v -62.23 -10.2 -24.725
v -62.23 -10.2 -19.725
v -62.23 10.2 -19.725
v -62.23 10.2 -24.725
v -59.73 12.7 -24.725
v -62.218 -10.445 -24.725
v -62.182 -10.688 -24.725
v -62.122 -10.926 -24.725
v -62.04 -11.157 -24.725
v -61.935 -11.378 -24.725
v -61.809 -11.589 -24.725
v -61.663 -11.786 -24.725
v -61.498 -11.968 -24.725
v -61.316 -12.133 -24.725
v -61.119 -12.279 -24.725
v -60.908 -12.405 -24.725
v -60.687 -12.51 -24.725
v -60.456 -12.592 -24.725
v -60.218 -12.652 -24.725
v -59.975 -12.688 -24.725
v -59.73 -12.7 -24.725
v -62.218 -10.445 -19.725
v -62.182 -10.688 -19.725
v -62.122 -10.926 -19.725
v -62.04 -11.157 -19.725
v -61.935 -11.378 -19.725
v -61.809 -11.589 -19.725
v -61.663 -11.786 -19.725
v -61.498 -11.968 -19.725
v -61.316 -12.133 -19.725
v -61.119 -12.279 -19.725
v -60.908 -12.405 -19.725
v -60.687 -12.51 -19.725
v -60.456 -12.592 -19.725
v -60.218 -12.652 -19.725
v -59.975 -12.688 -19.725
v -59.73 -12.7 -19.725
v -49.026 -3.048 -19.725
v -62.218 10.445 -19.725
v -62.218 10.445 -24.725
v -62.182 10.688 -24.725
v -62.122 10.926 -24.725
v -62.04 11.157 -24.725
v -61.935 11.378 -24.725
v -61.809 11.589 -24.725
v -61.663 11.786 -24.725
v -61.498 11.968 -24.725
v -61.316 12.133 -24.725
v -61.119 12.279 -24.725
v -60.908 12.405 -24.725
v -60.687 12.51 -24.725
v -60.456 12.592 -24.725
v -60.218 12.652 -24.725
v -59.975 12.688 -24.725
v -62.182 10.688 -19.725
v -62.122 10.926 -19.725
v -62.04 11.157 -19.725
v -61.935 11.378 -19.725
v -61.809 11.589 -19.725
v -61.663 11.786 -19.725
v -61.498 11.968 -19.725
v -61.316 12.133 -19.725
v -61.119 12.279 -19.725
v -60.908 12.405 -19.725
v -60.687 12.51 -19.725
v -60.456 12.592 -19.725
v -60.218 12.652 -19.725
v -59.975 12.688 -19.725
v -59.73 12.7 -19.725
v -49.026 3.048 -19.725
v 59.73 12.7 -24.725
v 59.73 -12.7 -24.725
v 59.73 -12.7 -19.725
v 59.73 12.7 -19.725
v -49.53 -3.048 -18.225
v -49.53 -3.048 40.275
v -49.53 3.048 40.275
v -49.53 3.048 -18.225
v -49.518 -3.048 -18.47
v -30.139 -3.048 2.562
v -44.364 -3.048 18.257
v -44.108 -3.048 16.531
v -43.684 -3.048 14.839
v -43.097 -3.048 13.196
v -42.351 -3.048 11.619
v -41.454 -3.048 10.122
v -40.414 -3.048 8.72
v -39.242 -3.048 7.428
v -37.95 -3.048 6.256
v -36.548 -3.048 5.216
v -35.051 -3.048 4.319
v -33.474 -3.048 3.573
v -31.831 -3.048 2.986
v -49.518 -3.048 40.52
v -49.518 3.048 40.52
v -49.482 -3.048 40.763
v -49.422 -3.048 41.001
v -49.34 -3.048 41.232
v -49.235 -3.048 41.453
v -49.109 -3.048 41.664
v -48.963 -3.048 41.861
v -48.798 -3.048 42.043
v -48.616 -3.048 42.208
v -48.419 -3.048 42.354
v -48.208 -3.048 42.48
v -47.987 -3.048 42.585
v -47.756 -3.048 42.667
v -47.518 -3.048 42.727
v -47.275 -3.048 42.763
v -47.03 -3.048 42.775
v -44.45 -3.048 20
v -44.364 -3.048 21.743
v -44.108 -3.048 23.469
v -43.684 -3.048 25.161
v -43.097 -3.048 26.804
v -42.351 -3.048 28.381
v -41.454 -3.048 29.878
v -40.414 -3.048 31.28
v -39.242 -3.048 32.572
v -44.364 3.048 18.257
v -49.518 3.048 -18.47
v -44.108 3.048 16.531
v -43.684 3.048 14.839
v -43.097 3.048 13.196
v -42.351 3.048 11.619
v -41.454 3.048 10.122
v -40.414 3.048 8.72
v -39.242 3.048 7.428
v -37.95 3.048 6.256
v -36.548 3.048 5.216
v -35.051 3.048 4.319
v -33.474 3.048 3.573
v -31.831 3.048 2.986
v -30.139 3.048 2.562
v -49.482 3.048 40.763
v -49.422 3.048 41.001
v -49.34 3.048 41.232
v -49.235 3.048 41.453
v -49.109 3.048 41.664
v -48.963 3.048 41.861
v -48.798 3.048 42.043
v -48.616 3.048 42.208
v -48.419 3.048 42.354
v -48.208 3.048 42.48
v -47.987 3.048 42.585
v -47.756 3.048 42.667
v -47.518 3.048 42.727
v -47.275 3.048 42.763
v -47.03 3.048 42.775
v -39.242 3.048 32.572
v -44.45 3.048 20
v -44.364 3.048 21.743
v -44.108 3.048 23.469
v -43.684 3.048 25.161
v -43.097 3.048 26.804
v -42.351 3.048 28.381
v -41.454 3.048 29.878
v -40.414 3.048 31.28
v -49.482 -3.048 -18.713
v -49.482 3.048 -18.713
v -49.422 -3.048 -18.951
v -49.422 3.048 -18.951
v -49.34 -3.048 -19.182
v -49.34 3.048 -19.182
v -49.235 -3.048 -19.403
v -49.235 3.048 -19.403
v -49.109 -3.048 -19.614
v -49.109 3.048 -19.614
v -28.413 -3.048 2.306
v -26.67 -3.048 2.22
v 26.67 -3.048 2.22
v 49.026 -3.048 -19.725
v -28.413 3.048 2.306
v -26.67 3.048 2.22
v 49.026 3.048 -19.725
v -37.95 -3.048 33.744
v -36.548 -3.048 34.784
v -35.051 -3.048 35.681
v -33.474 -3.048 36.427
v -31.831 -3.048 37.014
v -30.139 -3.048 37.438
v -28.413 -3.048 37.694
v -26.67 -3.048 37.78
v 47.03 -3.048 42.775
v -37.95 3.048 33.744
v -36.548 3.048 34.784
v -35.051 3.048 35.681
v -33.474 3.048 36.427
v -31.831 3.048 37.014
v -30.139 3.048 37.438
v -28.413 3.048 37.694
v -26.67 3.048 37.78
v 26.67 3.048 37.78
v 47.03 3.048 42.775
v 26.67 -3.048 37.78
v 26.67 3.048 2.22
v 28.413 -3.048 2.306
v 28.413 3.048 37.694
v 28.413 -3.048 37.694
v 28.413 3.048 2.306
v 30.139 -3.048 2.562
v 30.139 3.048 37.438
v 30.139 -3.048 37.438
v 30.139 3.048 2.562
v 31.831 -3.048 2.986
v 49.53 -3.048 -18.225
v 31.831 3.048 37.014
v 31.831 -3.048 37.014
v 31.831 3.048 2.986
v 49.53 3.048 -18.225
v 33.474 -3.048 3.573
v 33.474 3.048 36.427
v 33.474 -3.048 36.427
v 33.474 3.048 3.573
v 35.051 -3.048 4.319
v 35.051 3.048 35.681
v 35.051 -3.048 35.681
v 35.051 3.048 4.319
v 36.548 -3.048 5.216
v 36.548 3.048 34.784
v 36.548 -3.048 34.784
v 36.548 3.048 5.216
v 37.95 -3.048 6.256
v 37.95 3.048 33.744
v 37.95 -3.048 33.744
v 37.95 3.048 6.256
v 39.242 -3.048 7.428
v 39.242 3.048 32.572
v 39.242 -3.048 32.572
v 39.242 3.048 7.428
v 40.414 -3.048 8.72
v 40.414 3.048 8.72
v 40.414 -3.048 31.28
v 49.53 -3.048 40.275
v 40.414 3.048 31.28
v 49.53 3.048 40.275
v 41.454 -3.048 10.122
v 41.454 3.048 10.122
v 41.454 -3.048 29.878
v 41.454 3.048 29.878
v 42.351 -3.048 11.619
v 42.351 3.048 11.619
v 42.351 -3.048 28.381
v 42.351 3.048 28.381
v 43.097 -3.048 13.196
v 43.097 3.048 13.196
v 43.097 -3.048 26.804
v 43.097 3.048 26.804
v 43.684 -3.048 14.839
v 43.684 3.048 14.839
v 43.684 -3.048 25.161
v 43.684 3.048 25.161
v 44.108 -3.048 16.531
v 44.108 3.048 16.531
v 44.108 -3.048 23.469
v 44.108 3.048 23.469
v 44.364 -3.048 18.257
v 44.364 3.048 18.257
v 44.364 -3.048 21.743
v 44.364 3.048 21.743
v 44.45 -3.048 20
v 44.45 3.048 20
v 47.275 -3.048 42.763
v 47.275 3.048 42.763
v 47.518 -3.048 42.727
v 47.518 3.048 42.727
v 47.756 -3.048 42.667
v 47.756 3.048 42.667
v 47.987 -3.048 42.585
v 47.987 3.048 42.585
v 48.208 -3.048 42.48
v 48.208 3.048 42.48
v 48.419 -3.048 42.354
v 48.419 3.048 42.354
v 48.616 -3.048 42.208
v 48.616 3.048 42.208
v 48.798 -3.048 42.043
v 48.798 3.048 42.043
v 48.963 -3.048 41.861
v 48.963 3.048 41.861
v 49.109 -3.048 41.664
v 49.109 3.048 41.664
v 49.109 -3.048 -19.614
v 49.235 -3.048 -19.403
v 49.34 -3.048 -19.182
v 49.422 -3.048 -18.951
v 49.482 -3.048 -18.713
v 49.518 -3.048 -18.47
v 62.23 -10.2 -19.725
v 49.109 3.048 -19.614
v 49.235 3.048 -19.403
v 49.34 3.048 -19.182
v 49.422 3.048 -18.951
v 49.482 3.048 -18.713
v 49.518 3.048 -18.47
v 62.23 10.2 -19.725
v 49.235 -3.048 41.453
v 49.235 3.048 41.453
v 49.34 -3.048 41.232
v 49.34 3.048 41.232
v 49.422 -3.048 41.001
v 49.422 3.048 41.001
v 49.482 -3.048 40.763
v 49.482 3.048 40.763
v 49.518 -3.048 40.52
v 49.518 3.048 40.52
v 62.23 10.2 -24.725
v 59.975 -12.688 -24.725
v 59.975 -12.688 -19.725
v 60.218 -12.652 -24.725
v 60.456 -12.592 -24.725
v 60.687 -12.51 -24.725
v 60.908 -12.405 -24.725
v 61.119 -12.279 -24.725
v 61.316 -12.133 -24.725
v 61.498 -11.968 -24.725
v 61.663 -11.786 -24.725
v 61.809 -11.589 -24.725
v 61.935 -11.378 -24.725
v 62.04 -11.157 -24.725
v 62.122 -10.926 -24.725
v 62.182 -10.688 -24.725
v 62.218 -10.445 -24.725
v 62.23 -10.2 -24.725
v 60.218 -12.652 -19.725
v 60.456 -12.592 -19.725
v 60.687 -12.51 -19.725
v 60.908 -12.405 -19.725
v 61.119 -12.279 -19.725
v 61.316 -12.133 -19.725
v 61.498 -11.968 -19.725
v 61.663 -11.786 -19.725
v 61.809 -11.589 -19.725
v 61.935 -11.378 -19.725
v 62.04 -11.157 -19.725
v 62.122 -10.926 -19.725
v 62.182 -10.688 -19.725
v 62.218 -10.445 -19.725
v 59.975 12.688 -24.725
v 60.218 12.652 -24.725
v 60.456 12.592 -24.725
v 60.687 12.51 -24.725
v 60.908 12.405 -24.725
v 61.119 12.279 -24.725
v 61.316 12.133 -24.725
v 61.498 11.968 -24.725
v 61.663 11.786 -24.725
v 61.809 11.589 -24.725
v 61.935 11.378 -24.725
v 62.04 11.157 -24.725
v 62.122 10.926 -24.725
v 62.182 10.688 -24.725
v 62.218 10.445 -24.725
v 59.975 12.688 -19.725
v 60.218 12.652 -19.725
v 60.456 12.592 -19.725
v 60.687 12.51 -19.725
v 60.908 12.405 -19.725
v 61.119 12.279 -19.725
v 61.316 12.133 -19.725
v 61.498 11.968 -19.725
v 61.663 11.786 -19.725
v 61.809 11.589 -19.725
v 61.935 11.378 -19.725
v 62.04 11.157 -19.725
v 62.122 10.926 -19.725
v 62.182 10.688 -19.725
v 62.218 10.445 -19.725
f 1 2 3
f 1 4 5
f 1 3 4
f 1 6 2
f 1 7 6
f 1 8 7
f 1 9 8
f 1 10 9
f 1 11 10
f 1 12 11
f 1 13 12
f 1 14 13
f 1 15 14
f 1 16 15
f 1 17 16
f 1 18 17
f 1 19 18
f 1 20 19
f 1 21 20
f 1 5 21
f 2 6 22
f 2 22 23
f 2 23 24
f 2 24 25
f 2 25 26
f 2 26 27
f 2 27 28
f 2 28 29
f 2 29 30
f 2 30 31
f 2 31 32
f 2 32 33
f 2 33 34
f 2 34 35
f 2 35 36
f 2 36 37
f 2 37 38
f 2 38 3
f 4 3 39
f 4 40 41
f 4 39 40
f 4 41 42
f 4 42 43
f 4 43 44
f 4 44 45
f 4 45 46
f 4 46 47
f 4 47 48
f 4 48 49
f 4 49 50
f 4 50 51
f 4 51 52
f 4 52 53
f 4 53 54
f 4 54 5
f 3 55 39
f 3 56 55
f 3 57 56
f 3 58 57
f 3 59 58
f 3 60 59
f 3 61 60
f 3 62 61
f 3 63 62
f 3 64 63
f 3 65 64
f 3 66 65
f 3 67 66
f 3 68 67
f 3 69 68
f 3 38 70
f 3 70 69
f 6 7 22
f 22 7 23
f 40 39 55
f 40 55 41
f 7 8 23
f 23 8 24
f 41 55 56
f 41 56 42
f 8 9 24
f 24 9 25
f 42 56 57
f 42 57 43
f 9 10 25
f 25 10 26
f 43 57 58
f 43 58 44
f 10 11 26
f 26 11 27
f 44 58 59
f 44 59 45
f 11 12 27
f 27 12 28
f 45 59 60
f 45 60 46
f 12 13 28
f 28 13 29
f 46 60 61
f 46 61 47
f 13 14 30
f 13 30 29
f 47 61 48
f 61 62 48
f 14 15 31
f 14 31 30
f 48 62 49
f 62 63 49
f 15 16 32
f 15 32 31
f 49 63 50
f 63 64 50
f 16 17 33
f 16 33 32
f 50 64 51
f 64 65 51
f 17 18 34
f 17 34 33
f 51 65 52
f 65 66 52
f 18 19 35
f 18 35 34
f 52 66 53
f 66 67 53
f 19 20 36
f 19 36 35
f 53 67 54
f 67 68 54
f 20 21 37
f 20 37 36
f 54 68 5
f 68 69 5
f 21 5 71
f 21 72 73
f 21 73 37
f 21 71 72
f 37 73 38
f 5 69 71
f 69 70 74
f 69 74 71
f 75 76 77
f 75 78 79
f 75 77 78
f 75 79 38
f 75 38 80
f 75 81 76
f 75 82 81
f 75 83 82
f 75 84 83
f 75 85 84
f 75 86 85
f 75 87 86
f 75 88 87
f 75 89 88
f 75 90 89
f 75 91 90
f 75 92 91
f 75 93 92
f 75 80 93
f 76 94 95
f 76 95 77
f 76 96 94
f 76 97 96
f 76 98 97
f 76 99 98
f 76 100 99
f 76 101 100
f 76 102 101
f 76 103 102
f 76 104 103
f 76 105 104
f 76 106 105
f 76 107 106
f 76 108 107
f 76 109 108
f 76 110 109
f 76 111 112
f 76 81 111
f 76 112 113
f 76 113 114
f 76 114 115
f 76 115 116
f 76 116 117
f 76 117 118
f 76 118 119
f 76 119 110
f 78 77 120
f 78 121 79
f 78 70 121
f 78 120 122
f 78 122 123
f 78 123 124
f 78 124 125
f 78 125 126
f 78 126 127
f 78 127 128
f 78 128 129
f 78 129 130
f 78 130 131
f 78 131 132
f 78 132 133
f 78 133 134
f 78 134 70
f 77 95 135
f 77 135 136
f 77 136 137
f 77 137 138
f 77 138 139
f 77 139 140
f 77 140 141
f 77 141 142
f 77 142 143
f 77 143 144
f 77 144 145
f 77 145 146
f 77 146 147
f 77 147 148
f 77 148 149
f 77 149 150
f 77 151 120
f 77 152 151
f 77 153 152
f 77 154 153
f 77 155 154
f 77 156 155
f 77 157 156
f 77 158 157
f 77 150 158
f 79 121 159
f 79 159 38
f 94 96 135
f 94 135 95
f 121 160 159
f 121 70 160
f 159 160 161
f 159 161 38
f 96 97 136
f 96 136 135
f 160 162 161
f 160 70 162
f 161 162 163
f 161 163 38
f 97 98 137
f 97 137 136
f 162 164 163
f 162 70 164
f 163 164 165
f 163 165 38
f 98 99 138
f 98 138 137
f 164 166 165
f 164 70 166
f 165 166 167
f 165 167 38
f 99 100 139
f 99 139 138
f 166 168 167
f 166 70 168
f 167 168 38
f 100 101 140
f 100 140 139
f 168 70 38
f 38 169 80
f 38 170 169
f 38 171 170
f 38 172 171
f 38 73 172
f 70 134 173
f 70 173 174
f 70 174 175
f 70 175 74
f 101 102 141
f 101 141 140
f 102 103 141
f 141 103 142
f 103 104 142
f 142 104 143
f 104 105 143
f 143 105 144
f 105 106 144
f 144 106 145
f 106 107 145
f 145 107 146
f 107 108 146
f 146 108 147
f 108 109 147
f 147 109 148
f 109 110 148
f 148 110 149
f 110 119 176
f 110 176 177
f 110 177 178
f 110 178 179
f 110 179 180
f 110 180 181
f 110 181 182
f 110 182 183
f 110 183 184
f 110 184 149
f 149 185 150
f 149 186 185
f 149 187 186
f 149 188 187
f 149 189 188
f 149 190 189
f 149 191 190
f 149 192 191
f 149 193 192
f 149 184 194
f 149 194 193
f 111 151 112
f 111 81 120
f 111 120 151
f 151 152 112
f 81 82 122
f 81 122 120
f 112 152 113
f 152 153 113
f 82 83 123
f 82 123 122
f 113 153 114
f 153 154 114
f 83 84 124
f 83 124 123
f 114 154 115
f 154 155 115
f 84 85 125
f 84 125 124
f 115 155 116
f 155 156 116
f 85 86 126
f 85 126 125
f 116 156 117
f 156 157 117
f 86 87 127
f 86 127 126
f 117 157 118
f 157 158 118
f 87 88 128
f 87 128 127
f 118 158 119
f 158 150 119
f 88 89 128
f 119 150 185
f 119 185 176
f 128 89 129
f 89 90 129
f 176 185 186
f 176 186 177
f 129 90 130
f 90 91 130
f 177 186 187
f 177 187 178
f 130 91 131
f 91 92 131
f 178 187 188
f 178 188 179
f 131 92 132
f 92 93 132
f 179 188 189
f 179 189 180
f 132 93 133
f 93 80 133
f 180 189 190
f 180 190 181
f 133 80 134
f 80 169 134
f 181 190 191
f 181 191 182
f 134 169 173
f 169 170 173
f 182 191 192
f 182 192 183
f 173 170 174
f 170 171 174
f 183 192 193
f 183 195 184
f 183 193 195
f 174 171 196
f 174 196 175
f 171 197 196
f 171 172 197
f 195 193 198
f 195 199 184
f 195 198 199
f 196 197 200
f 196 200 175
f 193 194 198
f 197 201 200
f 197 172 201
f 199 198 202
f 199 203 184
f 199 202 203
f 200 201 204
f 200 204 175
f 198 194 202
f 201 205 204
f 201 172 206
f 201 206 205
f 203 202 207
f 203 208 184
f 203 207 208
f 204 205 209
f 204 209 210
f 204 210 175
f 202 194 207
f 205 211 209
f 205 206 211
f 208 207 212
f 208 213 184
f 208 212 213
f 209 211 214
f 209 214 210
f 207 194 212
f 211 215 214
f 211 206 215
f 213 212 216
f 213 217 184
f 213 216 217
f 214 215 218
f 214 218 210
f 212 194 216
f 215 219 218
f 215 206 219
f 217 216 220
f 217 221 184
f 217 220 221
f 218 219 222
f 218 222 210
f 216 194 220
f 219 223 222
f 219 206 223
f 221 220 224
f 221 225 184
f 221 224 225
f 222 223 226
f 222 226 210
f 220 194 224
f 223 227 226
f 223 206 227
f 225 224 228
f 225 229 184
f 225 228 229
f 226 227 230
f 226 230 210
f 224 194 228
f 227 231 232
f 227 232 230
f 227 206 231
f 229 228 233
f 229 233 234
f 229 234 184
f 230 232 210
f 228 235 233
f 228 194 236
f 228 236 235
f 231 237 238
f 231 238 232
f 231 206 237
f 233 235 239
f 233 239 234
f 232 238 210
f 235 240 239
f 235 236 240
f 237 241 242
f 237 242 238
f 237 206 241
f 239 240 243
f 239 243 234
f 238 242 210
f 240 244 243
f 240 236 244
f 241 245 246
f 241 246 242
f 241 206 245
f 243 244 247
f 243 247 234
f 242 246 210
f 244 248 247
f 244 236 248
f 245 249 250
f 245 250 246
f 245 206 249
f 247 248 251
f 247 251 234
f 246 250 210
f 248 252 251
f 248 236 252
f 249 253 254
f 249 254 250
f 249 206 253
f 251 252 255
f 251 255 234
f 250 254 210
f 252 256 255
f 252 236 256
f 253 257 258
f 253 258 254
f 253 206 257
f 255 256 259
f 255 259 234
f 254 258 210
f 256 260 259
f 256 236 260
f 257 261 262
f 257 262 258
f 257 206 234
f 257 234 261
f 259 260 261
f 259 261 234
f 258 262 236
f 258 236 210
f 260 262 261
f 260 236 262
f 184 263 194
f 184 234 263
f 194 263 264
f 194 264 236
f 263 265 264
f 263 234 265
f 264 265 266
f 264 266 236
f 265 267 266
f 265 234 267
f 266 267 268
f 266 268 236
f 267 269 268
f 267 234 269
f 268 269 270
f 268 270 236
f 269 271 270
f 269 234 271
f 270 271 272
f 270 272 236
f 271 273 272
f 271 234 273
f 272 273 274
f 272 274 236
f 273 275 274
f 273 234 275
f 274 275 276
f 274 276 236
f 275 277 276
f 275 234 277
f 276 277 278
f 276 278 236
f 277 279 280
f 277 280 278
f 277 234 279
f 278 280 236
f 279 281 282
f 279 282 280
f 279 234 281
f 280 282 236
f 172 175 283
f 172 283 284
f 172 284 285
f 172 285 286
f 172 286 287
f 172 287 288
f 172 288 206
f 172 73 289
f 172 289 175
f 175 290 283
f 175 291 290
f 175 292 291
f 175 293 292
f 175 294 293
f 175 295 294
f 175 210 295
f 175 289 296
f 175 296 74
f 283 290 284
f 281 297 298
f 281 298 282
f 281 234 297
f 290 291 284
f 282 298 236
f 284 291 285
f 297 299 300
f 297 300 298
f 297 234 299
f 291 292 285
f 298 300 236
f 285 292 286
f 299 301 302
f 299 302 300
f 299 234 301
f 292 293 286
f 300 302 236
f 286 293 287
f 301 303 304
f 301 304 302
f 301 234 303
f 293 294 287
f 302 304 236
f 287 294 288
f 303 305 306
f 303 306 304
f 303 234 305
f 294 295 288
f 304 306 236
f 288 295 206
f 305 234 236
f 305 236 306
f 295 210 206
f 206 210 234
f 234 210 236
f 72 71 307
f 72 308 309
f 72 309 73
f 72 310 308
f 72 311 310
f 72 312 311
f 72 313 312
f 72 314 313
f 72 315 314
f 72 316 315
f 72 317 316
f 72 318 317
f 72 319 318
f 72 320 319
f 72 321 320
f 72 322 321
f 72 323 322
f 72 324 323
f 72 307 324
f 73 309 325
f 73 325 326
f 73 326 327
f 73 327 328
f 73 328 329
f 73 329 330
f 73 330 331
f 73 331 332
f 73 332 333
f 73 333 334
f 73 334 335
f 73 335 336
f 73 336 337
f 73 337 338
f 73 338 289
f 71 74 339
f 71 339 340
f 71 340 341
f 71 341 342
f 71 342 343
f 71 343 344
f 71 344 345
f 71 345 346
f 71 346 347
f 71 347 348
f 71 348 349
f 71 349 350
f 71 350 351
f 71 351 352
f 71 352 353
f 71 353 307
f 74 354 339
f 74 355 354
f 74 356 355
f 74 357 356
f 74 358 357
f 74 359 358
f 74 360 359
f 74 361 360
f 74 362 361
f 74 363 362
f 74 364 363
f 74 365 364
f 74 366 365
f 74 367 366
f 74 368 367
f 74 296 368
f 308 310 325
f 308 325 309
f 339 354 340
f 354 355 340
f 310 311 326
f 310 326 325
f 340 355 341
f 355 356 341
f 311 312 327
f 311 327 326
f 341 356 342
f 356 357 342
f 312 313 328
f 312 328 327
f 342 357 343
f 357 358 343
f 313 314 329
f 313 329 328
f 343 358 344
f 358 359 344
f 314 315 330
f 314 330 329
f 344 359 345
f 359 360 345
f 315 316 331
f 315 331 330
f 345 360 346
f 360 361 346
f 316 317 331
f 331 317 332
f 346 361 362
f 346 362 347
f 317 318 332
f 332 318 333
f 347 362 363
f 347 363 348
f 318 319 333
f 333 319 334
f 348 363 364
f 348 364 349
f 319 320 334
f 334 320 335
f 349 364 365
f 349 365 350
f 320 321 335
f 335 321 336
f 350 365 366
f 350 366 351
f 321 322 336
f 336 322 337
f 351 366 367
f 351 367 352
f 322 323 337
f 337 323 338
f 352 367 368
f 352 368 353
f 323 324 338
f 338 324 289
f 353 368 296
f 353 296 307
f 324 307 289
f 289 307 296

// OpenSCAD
//
// 1-piece handle, insert from bottom
//

e = 0.1;
mm = 25.4;
$fn = 64;

// slot
slot_len = 4*mm-0.1*mm;
slot_wid = 0.125*mm - 0.005*mm;

foam_thk = (7/8)*mm;		/* thickness of tray bottom plus foam */
headroom = 2.5*mm;		/* space above foam to box lid */

bot_len = slot_len + 1*mm;
bot_wid = 1*mm;
bot_thk = 2.5;

handle_open_hgt = 1.4*mm;
handle_open_wid = 3.5*mm;
handle_top = 0.25*mm;

rnd = 5;			/* round edge dia */

// generate a cube rounded in x, y using minkowski
// origin at xyz=0
module rounded_cube( dx, dy, dz, dia) {
     translate( [dia/2, dia/2, 0]) {
	  minkowski() {
	       cube( [dx-dia, dy-dia, dz]);
	       cylinder( h=dz, d=dia);
	  }
     }
}

module bottom_base() {
     translate( [-bot_len/2, -bot_wid/2, -foam_thk-bot_thk]) {
	  rounded_cube( bot_len, bot_wid, bot_thk, rnd);
     }
     rotate( [90, 0, 0])
	  translate( [-slot_len/2, -foam_thk+bot_thk-1, -slot_wid])
	  rounded_cube( slot_len, headroom, slot_wid, rnd);
}

// draw handle opening from center
handle_cut_offset = 5;
module handle_opening() {
     translate( [-handle_open_wid/2+handle_open_hgt/2, 0, -handle_cut_offset])
	  cylinder( h=handle_cut_offset*2, d=handle_open_hgt);
     translate( [handle_open_wid/2-handle_open_hgt/2, 0, -handle_cut_offset])
	  cylinder( h=handle_cut_offset*2, d=handle_open_hgt);
     translate( [-handle_open_wid/2+handle_open_hgt/2, -handle_open_hgt/2, -handle_cut_offset])
	  cube( [handle_open_wid-handle_open_hgt, handle_open_hgt, 2*handle_cut_offset]);
}

module bottom() {
     difference() {
	  bottom_base();
	  rotate( [90, 0, 0]) {
	       translate( [0, 20, 0])
		    handle_opening();
	  }
     }
}

bottom();
